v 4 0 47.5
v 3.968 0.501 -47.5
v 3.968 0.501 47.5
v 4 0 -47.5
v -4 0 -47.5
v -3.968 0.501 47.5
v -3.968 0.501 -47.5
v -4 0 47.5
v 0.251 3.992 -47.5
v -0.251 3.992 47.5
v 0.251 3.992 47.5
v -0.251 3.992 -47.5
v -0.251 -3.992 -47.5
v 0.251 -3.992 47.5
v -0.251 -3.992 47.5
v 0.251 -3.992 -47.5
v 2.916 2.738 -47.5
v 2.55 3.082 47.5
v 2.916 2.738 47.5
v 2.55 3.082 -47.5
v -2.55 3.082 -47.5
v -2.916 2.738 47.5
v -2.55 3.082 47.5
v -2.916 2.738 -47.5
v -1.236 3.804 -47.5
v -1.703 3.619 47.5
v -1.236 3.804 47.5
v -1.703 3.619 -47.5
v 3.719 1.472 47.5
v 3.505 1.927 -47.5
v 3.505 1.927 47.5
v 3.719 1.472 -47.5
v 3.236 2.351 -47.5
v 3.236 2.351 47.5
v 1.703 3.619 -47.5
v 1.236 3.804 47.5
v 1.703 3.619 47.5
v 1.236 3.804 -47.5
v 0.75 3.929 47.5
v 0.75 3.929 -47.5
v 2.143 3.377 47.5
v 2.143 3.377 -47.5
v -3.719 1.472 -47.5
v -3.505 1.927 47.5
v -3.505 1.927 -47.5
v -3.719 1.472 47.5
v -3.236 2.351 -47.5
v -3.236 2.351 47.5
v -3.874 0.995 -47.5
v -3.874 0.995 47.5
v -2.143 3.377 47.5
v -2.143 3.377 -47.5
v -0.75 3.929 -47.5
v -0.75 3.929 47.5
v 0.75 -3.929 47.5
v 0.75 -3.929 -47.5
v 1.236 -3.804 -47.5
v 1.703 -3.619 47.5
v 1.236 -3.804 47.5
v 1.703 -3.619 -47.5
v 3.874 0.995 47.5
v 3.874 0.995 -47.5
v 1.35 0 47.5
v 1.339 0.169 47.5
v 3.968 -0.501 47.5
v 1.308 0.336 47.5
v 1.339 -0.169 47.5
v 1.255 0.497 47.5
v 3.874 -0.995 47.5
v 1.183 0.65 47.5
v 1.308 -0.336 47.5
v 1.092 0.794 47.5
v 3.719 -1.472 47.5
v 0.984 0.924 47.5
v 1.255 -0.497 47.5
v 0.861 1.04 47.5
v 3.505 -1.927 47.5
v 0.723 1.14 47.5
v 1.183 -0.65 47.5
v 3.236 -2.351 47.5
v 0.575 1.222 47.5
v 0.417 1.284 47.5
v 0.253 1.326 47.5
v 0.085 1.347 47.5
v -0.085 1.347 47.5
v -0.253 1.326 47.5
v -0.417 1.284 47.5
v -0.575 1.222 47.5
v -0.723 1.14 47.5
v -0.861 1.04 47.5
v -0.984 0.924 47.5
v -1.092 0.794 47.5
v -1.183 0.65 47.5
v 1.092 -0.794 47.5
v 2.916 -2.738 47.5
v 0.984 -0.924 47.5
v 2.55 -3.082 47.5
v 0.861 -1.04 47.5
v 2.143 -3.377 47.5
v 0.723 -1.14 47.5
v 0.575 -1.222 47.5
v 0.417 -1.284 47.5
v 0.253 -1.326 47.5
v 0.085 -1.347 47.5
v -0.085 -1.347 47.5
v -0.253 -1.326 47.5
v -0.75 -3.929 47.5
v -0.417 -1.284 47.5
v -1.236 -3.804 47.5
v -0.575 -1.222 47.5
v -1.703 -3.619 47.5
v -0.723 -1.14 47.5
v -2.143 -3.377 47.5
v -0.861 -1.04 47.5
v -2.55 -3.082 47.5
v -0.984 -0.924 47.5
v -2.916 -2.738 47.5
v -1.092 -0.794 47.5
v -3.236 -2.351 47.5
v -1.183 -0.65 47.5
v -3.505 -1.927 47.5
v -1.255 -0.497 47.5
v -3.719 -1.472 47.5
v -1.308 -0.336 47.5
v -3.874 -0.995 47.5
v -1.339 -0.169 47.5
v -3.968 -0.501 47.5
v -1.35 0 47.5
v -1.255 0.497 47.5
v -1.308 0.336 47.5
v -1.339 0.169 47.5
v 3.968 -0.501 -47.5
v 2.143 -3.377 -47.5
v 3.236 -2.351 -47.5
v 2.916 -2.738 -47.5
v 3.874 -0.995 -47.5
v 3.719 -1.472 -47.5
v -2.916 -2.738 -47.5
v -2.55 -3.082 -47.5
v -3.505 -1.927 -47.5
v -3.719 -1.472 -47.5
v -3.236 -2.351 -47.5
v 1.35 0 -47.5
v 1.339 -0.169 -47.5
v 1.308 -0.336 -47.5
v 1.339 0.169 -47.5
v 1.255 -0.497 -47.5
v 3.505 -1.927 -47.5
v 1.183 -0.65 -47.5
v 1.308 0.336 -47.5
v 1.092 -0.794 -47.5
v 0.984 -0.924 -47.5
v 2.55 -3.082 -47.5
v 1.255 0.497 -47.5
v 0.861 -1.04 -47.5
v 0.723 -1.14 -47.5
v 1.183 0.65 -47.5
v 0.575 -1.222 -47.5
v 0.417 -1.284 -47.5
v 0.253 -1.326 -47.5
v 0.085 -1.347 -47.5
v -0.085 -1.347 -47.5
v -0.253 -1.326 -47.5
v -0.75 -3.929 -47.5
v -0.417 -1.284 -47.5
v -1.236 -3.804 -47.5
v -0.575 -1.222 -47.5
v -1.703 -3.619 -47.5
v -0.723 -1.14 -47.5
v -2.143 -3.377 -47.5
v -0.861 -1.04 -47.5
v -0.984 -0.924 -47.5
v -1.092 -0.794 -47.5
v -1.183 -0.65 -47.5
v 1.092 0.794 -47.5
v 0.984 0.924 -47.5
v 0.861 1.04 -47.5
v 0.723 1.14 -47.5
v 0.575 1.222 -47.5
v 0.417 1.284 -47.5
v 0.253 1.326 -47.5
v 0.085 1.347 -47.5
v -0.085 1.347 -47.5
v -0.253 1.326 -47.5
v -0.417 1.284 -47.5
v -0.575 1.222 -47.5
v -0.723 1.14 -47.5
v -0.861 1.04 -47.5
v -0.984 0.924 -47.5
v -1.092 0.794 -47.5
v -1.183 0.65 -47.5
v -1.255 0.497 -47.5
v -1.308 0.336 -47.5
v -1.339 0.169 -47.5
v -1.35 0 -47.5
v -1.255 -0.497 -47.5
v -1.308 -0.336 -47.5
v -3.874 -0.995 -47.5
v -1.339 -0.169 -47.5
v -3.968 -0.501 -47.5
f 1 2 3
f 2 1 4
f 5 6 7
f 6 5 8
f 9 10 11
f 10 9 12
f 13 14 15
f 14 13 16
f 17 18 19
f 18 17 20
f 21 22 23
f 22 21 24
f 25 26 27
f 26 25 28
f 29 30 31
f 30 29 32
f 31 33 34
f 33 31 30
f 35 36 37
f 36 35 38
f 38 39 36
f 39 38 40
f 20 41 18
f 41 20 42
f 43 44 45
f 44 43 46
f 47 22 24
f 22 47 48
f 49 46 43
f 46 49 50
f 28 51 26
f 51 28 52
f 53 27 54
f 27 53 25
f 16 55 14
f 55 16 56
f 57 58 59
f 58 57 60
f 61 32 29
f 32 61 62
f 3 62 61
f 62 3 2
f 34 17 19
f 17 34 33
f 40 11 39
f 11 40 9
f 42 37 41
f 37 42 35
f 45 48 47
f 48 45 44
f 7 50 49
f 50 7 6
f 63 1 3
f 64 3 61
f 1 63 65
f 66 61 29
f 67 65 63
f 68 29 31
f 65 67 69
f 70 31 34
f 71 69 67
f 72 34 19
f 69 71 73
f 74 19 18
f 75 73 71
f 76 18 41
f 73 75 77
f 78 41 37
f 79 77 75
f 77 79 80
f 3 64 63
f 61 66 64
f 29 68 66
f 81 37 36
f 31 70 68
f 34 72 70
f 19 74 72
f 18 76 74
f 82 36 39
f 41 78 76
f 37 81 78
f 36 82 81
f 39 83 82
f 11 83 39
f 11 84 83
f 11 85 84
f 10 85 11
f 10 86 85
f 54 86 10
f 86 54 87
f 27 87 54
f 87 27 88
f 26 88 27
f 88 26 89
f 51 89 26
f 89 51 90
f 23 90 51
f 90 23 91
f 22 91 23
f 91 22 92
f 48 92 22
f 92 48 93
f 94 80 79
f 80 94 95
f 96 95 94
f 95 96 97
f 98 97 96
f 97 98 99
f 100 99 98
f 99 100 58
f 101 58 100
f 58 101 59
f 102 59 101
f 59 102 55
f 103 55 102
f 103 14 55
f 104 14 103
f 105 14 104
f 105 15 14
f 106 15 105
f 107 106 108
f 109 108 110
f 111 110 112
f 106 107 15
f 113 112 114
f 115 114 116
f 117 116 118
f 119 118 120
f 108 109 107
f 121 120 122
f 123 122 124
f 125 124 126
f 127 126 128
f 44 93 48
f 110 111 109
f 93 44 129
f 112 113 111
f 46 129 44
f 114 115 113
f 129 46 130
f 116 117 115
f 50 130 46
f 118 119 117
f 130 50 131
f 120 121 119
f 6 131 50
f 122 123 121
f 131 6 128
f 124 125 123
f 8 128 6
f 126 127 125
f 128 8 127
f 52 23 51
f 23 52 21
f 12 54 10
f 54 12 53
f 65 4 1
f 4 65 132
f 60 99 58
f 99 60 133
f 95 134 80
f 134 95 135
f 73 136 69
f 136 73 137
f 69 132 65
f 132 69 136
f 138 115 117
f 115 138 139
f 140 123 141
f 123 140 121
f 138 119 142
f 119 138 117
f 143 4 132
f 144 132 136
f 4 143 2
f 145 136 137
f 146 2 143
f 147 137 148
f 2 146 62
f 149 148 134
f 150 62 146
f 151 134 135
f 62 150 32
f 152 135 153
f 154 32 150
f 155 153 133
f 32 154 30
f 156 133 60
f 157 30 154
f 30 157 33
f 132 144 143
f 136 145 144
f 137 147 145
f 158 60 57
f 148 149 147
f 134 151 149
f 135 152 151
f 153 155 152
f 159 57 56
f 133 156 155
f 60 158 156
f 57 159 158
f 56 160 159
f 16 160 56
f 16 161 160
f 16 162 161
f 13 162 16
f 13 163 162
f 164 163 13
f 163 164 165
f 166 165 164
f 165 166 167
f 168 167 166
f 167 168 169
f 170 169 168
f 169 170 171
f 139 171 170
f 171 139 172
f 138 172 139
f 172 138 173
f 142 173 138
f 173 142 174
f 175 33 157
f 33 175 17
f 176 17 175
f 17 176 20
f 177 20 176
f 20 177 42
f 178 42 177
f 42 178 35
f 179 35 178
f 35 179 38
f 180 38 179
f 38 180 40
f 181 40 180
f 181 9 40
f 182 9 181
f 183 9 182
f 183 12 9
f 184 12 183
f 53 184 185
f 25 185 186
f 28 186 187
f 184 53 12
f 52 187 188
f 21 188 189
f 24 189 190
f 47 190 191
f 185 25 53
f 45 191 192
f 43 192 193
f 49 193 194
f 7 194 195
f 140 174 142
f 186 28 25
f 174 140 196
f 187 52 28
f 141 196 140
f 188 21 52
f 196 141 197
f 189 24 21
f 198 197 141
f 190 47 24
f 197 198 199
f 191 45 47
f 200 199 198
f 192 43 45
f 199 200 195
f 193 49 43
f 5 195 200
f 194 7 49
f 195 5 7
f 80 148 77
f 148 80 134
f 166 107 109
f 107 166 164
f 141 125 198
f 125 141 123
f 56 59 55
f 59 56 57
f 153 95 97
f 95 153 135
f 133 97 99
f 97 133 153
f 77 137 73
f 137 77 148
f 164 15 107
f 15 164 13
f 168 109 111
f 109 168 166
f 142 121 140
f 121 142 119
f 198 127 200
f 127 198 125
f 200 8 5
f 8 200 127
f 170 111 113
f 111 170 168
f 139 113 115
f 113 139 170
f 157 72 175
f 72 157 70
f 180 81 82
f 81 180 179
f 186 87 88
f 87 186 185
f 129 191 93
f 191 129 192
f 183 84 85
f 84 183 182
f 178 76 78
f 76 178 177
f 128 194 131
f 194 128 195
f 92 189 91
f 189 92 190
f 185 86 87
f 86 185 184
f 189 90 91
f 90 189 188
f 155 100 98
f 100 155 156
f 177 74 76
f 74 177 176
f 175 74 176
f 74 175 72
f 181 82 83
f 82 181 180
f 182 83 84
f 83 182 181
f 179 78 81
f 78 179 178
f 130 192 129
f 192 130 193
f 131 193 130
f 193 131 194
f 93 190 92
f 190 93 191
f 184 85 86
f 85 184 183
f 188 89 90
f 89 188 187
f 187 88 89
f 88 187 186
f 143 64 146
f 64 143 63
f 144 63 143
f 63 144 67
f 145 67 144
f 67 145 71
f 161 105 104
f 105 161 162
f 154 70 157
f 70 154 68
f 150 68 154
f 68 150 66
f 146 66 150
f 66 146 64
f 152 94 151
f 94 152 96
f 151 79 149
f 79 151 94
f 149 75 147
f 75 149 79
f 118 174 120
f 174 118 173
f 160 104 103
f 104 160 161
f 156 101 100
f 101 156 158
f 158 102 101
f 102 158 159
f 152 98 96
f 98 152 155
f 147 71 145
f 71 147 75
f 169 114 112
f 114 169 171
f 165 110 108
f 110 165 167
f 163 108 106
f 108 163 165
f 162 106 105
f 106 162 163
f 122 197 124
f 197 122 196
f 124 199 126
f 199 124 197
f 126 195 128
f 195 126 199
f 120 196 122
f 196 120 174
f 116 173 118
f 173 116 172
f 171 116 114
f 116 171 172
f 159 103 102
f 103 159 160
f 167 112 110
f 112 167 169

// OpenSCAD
$fn = 50;


difference() {
	union() {
		translate(v = [0, 0, -47.5000000000]) {
			cylinder(h = 95, r = 4.0000000000);
		}
	}
	union() {
		translate(v = [0, 0, -100.0000000000]) {
			cylinder(h = 200, r = 1.3500000000);
		}
	}
}
